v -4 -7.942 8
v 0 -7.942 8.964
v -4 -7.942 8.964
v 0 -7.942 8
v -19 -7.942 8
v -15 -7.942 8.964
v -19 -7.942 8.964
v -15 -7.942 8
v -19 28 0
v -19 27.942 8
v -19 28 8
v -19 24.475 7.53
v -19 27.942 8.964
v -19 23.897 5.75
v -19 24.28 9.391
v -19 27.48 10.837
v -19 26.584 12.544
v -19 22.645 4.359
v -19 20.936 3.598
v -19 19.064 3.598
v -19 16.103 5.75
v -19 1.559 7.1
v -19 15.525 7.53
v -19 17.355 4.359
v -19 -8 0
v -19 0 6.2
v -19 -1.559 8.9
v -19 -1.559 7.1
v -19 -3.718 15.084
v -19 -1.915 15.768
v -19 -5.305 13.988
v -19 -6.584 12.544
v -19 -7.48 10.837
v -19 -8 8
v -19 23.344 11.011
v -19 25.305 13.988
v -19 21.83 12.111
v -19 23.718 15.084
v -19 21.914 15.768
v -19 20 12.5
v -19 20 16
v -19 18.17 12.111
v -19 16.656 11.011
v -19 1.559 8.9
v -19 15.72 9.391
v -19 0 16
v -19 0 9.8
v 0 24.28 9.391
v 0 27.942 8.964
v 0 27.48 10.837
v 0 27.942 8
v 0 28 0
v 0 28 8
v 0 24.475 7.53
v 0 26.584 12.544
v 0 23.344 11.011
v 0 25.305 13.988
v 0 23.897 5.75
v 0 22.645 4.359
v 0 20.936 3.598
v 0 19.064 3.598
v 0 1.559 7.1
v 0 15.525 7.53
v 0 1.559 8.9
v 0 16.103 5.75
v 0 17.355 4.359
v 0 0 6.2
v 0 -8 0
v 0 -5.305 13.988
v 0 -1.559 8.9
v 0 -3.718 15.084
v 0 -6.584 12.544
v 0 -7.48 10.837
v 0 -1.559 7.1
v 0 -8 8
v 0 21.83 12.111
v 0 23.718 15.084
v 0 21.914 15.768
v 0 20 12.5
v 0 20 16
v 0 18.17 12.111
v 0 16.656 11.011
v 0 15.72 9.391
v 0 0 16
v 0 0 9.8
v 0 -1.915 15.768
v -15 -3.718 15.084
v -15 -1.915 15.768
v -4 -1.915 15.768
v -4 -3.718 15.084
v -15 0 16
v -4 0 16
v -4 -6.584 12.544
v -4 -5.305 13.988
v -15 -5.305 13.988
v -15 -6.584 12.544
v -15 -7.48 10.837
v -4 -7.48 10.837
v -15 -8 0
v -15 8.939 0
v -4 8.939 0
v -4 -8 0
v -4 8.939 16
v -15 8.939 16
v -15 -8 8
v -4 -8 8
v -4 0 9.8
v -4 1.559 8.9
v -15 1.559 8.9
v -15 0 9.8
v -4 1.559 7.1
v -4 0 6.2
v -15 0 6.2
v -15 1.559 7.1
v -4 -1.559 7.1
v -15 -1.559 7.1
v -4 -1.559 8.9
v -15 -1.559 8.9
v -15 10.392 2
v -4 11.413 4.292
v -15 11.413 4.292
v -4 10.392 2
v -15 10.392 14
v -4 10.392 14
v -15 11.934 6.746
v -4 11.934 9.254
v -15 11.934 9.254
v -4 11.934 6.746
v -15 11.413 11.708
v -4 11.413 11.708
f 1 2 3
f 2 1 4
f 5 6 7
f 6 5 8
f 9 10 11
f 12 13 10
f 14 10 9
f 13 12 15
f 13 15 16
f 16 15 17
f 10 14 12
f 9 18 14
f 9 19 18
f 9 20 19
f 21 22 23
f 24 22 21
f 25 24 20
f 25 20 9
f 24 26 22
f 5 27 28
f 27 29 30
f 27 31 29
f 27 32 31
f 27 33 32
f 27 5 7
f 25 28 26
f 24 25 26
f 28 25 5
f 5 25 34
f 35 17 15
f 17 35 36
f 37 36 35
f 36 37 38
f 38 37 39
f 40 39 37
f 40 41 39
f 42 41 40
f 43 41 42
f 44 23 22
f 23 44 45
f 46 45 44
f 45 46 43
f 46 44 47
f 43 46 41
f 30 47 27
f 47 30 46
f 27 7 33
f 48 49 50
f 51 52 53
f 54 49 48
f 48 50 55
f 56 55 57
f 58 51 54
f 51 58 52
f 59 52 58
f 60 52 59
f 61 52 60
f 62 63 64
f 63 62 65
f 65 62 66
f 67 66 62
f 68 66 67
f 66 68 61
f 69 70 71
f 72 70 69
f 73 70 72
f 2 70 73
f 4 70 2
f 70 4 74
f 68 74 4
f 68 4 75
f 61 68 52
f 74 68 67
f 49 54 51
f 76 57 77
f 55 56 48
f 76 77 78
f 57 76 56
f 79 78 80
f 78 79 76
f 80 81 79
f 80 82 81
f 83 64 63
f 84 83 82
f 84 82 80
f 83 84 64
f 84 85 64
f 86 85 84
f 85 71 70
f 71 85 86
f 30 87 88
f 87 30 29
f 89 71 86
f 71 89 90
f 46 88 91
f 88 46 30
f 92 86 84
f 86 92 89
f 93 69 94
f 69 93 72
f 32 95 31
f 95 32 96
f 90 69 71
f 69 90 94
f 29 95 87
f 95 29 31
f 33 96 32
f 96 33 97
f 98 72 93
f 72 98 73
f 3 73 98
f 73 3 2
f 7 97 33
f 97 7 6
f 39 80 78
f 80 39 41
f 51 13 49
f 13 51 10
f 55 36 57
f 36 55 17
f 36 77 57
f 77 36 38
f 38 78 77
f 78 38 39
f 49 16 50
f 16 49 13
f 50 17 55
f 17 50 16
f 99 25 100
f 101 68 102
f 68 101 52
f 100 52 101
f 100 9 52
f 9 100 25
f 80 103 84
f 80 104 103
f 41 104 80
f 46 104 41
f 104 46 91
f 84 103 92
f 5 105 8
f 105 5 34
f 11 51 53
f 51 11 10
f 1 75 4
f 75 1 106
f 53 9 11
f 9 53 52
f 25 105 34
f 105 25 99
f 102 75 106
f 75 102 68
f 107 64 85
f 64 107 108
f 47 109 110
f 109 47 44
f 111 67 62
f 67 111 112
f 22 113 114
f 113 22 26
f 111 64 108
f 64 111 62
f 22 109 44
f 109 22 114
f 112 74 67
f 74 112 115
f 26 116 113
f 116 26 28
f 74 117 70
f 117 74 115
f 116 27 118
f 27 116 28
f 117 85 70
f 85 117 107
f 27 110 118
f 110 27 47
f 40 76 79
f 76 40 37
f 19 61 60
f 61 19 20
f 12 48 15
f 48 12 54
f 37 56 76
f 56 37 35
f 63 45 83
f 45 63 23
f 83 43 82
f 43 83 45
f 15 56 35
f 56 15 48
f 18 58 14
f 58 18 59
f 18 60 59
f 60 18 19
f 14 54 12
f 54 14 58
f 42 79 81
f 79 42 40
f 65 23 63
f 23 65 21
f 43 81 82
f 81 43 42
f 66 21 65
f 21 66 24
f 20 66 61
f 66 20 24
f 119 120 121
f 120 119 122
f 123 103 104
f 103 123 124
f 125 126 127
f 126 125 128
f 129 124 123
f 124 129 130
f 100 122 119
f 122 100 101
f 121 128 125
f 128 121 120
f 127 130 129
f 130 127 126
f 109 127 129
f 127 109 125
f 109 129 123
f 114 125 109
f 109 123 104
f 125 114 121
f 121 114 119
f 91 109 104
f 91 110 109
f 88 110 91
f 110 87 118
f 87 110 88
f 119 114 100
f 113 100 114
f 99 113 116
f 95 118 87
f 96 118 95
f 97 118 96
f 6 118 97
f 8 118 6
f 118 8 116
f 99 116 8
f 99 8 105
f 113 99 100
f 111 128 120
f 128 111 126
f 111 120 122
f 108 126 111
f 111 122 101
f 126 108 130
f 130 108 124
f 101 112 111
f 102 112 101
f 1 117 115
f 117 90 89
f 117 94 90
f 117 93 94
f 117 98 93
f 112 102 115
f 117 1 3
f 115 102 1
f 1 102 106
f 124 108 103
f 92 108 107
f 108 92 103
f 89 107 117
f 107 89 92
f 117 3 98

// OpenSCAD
// PRUSA iteration3
// Y idler
// GNU GPL v3
// Josef Průša <iam@josefprusa.cz> and contributors
// http://www.reprap.org/wiki/Prusa_Mendel
// http://prusamendel.org


module y_idler_base() {
 translate([0,0,0]) cylinder(h=19, r=8);
 translate([0,20,0]) cylinder(h=19, r=8);
 translate([0,10,9.5]) cube(size=[16,20,19], center=true);
 translate([-4,10,9.5]) cube(size=[8,16+20,19], center=true);
}

module y_idler_holes() {
 translate([0,0,-1]) cylinder(h=120, r=1.8);
 translate([0,20,-1]) cylinder(h=25, r=4.5);
 translate([0,0,4]) cylinder(h=11, r=12);
}

// Final part
module y_idler() {
 translate([0,0,8])rotate([0,-90,0]) difference() {
  y_idler_base();
  y_idler_holes();
 }
}

y_idler();
